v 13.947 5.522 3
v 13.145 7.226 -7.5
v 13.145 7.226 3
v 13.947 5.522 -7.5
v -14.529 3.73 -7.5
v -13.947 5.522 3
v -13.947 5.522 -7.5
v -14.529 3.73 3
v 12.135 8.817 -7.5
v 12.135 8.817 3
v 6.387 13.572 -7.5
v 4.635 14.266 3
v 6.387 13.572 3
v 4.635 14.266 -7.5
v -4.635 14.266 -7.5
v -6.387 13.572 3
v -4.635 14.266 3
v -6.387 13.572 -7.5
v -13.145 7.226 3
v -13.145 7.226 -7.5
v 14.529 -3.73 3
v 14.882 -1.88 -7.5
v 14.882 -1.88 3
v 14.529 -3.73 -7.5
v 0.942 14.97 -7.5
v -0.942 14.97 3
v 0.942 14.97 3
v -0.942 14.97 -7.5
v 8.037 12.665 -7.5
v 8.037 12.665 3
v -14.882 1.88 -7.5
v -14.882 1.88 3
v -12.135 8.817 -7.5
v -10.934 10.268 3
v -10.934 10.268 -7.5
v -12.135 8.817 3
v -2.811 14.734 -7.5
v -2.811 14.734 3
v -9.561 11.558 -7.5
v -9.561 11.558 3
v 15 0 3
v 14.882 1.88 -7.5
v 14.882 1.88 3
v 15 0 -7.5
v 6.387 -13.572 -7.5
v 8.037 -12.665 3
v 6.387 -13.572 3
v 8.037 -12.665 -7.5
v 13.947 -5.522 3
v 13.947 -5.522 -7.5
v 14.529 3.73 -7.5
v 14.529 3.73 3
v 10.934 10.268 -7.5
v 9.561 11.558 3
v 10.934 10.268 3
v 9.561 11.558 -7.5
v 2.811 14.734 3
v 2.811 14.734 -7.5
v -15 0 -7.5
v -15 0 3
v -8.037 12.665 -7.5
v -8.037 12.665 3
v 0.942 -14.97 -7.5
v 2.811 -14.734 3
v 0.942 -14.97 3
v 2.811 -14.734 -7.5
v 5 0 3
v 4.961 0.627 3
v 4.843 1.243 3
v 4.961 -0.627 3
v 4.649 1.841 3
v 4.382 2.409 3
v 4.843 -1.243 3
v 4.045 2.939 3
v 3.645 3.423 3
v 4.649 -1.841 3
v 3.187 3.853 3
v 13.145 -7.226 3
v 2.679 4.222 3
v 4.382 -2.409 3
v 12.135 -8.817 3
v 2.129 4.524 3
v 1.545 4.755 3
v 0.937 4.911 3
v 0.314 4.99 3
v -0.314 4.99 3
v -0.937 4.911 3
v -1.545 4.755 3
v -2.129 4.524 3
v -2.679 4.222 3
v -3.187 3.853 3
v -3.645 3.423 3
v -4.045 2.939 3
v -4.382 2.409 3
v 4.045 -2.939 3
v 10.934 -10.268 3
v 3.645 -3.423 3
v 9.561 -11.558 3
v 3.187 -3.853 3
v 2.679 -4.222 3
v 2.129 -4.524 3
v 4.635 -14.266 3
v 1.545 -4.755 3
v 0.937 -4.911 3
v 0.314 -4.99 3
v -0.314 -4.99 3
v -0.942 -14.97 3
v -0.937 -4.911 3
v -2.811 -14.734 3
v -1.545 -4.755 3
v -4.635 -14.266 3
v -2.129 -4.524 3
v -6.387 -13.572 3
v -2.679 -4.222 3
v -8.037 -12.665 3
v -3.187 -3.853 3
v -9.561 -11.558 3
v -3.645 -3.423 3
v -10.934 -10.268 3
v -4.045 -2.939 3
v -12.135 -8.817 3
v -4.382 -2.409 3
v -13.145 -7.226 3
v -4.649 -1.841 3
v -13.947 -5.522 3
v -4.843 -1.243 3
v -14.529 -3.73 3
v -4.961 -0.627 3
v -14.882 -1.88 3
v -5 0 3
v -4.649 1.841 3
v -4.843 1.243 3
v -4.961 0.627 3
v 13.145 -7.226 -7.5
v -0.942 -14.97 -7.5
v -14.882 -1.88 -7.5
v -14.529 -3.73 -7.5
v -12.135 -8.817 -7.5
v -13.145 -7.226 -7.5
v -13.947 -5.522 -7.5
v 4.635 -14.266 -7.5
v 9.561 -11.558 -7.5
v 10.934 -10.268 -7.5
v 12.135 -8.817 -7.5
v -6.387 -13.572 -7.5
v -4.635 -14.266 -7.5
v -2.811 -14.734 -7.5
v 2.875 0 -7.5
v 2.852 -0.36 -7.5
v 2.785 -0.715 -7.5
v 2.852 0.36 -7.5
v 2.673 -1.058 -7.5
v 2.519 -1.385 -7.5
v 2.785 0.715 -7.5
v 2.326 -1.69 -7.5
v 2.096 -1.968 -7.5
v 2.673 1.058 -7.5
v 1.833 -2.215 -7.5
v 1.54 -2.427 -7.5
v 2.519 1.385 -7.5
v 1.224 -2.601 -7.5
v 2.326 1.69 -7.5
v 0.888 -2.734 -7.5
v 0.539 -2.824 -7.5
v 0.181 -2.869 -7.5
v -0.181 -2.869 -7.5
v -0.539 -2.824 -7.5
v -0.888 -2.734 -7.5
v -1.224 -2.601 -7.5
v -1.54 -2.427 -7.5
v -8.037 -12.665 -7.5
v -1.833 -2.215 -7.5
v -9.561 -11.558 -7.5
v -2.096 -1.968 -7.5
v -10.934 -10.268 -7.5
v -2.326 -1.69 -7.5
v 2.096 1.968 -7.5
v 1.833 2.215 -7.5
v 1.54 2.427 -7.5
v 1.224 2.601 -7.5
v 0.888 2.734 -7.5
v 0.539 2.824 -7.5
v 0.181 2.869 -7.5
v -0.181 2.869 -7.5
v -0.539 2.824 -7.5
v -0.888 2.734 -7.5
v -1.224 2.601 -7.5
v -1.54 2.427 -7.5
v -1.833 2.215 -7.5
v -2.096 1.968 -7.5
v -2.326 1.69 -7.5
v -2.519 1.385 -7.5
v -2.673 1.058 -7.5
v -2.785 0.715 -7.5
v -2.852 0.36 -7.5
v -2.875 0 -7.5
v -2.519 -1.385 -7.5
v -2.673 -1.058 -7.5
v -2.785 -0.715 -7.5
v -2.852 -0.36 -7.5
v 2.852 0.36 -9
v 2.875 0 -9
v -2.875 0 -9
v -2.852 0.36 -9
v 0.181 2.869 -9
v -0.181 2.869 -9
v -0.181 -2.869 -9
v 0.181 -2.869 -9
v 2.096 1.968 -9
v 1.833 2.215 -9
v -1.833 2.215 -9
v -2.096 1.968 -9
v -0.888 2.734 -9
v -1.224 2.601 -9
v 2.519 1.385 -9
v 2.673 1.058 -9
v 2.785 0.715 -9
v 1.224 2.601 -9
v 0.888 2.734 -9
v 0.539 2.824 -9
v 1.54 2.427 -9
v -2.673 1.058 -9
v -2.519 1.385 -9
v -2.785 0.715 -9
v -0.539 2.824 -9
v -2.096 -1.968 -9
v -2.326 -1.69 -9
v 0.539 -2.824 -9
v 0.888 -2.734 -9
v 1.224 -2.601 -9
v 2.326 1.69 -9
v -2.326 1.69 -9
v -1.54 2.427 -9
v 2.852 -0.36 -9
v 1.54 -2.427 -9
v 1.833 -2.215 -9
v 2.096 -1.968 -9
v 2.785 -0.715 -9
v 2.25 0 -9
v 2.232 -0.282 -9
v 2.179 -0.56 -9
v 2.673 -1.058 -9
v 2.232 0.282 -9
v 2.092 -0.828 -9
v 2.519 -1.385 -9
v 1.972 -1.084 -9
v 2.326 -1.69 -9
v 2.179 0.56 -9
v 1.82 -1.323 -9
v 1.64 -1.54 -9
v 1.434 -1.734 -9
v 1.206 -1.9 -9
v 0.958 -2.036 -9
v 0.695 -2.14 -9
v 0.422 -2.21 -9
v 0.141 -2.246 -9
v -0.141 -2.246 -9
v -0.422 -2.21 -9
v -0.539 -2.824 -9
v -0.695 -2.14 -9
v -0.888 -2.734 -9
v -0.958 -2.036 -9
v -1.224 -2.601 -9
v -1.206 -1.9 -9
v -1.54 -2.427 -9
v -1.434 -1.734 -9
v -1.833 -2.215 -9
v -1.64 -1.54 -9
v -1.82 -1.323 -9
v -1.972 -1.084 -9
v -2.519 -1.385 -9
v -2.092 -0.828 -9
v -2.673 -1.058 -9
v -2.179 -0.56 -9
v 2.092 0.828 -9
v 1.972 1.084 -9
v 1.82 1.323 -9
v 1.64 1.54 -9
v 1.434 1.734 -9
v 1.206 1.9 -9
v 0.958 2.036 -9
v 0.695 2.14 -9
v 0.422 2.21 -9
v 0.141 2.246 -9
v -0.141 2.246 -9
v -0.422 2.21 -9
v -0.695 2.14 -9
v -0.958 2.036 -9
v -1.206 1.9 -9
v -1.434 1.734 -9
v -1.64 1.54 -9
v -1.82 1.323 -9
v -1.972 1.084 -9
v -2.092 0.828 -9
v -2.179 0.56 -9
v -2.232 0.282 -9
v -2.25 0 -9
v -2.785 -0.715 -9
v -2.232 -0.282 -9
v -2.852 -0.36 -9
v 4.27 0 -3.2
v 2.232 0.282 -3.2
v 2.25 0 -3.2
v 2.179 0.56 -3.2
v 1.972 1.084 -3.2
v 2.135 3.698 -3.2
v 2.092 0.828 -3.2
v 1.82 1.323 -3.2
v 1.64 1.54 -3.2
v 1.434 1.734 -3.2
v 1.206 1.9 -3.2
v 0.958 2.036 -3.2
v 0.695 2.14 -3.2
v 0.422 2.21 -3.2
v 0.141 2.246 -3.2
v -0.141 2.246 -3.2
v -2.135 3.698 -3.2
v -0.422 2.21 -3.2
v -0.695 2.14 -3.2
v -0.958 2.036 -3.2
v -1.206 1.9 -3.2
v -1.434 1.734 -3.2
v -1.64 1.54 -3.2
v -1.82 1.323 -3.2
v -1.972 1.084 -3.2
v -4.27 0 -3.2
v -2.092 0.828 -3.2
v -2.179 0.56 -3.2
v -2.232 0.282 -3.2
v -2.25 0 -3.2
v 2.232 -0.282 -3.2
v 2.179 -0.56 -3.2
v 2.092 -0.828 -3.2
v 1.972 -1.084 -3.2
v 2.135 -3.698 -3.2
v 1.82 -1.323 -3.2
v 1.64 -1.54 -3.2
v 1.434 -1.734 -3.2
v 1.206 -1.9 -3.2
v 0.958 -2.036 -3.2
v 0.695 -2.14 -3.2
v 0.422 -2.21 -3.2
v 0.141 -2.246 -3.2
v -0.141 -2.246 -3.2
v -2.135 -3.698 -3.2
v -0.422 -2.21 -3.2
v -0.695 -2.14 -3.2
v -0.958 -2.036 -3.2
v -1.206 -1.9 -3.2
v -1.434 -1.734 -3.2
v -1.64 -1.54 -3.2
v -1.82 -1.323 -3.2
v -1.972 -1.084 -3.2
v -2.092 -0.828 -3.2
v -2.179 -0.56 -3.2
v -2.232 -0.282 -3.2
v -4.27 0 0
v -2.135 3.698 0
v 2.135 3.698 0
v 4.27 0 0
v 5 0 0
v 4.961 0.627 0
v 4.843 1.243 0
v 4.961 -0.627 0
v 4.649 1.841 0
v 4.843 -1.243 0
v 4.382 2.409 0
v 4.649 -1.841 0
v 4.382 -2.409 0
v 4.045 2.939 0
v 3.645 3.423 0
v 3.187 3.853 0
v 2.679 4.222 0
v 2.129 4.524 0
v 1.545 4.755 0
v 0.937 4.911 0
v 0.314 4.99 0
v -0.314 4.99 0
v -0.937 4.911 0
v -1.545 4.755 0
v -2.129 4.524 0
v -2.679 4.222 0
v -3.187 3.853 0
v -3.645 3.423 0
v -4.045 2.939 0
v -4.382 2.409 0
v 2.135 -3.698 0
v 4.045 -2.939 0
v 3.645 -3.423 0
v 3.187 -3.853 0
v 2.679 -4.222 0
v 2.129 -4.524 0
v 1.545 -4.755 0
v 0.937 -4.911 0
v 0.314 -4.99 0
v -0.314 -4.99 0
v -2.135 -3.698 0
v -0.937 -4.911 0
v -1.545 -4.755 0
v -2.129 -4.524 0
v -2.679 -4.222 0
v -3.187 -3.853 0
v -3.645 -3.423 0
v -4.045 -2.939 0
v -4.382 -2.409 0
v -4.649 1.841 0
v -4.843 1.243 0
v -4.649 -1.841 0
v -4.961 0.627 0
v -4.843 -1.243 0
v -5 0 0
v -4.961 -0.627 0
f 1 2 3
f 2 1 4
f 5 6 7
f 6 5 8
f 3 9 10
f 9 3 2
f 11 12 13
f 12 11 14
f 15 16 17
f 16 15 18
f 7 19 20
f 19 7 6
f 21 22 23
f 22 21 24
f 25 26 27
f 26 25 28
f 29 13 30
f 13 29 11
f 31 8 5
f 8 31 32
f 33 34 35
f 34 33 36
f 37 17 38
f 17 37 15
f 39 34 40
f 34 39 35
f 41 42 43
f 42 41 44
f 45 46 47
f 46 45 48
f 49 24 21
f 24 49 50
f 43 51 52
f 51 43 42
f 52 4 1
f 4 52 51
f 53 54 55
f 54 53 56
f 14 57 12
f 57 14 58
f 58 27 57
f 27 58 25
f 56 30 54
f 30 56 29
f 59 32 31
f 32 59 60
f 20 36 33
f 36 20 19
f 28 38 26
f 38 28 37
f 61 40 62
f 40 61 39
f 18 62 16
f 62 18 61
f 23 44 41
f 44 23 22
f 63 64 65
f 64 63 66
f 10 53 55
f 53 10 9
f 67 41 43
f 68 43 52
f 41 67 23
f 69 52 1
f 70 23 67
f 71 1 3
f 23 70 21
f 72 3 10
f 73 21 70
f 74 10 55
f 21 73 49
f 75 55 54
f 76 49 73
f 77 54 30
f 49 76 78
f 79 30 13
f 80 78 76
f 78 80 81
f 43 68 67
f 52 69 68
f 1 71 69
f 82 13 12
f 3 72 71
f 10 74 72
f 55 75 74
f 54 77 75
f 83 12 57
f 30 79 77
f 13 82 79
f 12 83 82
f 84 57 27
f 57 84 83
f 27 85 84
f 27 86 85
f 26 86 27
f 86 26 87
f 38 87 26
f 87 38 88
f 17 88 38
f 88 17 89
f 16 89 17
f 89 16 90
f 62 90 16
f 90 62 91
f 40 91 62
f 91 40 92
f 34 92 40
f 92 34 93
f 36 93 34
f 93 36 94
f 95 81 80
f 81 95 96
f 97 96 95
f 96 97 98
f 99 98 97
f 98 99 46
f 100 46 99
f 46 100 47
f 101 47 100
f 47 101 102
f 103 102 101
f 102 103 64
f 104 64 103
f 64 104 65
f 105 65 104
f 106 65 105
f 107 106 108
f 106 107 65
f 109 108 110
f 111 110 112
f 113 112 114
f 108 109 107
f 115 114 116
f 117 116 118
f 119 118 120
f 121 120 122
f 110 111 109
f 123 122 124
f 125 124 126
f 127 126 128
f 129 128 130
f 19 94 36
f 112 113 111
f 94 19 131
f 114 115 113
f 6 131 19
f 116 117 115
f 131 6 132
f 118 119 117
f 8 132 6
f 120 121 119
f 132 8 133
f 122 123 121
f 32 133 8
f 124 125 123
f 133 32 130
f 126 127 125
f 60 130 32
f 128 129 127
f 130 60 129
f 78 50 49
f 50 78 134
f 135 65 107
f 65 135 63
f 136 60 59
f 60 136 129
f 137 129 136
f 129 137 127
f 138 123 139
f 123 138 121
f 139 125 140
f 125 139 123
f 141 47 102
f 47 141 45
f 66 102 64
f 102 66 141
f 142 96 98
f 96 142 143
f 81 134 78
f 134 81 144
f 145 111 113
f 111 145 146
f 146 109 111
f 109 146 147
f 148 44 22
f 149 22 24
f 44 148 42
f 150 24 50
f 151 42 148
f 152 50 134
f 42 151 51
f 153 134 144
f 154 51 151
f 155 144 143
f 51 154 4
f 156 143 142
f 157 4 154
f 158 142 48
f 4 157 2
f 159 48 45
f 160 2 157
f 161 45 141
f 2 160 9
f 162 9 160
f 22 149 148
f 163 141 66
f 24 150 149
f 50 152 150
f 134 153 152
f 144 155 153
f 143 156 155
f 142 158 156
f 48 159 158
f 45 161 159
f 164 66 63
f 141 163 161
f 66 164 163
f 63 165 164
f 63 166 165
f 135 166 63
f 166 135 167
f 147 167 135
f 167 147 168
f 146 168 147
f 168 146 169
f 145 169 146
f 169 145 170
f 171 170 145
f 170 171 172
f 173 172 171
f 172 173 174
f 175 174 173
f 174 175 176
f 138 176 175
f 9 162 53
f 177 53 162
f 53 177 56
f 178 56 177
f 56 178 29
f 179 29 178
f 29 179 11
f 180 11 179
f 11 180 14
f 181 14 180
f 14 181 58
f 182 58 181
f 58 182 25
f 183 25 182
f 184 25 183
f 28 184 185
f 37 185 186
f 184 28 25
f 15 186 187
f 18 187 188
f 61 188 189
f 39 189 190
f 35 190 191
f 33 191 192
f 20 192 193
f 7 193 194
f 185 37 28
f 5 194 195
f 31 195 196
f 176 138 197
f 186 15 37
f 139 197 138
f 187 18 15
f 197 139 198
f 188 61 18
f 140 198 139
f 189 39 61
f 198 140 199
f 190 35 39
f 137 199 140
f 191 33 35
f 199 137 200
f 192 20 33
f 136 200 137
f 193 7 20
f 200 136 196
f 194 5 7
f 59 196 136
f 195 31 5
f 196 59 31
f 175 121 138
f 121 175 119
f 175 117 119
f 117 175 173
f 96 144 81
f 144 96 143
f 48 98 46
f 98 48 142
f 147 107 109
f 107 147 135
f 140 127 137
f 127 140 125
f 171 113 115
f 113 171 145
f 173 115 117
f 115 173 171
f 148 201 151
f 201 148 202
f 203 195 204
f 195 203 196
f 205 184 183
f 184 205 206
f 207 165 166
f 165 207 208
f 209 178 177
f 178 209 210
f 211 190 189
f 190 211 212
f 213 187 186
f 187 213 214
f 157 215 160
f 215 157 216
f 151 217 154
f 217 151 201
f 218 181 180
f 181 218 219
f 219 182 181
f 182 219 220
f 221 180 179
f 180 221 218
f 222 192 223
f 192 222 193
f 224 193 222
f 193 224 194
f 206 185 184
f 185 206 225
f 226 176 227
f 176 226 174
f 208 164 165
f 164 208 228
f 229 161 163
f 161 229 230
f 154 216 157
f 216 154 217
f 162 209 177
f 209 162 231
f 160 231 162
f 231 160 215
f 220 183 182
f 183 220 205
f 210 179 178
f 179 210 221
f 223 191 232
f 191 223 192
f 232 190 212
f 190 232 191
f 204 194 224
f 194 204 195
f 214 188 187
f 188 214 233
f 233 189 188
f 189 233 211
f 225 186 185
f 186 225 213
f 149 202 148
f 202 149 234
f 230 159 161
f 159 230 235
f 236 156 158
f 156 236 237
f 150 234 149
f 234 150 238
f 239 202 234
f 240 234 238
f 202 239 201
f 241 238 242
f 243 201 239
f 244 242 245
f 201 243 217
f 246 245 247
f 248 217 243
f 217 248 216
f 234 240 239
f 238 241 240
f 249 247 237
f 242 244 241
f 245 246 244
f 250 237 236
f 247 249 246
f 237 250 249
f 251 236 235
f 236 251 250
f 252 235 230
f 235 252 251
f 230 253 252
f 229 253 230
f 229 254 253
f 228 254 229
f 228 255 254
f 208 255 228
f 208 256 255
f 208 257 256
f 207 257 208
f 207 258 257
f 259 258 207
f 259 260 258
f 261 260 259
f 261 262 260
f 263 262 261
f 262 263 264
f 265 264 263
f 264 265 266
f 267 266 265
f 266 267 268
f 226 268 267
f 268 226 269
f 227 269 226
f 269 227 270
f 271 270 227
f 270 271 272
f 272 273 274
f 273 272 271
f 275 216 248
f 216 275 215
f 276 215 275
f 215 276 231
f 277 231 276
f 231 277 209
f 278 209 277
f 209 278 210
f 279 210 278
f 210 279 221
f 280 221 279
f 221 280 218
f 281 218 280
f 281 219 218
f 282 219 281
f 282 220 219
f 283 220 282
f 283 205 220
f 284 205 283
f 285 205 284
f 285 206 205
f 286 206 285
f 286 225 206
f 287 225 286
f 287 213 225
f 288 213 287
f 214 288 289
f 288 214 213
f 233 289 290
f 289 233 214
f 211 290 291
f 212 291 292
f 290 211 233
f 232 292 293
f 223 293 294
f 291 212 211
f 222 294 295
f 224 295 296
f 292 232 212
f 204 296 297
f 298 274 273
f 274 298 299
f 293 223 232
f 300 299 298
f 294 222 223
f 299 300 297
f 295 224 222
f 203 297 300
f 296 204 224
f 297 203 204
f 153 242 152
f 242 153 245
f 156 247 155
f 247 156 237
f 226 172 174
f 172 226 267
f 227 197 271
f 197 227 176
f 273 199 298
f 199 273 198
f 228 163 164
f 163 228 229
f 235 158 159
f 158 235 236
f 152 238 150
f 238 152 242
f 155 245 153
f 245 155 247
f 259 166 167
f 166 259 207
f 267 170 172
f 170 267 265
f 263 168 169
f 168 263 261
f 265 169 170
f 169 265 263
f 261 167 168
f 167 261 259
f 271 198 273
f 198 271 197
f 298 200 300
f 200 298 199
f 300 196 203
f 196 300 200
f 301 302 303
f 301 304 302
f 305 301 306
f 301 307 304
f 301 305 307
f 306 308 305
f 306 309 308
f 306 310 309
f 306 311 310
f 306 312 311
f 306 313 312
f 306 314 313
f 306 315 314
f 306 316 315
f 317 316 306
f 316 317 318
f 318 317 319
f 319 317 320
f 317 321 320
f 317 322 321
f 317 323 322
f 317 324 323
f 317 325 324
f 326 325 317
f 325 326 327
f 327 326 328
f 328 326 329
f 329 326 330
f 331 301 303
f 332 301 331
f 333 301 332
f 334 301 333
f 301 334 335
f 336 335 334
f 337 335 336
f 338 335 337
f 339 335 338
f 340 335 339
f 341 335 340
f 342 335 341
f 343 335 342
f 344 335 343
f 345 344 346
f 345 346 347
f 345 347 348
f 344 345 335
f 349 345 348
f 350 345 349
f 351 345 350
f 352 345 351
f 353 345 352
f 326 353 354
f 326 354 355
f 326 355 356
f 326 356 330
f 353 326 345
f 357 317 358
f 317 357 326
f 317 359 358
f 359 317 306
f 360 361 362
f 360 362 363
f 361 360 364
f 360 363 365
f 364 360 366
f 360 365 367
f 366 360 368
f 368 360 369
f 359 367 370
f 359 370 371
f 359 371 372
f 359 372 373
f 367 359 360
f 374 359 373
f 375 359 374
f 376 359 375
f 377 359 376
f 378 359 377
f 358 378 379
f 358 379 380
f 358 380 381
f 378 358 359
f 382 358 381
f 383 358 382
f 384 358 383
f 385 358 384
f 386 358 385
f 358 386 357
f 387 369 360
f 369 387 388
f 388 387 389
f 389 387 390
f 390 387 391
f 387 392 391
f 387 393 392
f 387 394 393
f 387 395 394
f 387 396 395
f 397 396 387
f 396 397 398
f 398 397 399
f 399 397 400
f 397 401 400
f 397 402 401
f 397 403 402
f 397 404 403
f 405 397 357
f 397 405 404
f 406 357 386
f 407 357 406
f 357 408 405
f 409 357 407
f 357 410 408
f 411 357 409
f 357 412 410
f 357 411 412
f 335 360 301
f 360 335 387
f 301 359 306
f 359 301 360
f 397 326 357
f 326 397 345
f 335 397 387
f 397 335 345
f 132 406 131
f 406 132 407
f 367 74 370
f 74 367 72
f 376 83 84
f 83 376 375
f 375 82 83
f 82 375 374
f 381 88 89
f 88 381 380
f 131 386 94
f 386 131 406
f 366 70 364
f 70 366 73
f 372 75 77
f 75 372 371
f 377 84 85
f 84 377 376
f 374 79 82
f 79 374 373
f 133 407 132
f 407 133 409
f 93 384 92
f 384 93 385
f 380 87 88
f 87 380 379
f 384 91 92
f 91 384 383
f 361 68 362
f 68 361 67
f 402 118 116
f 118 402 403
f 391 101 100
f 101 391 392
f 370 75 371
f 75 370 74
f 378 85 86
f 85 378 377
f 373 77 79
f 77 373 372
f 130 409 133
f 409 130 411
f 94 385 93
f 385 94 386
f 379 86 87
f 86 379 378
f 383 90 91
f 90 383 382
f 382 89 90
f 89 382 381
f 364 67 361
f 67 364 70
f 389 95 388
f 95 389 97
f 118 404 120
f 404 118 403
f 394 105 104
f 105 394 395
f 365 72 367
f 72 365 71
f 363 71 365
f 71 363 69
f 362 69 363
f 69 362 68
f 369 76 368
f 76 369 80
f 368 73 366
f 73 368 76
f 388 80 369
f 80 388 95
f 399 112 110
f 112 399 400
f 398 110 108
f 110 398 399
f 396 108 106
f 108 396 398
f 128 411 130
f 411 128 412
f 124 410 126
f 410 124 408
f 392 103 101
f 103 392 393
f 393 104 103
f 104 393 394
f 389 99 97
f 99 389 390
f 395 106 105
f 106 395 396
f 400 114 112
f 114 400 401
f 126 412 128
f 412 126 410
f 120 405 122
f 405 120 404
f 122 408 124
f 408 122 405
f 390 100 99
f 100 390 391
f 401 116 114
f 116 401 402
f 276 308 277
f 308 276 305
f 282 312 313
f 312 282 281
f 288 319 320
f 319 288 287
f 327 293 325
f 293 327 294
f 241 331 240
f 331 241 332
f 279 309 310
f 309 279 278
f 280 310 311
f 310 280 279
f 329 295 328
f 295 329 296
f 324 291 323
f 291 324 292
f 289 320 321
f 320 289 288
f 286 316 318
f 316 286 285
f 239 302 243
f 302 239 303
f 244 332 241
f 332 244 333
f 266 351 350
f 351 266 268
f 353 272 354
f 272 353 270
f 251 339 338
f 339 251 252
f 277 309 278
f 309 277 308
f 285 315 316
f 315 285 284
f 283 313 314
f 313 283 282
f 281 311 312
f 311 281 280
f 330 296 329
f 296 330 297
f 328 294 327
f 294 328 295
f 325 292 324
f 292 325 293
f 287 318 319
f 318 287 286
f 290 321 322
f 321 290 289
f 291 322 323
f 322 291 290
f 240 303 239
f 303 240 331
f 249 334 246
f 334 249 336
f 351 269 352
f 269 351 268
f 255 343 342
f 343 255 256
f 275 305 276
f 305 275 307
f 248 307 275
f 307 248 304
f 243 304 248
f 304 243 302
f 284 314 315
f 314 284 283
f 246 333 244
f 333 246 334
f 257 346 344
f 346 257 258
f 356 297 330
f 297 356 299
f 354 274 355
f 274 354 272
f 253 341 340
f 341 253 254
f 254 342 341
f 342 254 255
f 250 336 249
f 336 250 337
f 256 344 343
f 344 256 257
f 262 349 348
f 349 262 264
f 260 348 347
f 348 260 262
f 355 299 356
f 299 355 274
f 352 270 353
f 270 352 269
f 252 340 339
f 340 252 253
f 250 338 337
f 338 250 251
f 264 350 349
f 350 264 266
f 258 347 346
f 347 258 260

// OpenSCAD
$fn = 50;


difference() {
	union() {
		translate(v = [0, 0, -7.5000000000]) {
			cylinder(h = 10.5000000000, r = 15.0000000000);
		}
		#translate(v = [0, 0, -9.0000000000]) {
			cylinder(h = 9, r = 2.8750000000);
		}
	}
	union() {
		translate(v = [0, 0, 0]) {
			rotate(a = [0, 0, 0]) {
				difference() {
					union() {
						translate(v = [0, 0, -3.2000000000]) {
							linear_extrude(height = 3.2000000000) {
								polygon(points = [[4.2698000000, 0.0000000000], [2.1349000000, 3.6977552691], [-2.1349000000, 3.6977552691], [-4.2698000000, 0.0000000000], [-2.1349000000, -3.6977552691], [2.1349000000, -3.6977552691]]);
							}
						}
					}
					union();
				}
			}
		}
		#cylinder(h = 3, r = 5.0000000000);
		#translate(v = [0, 0, -100.0000000000]) {
			cylinder(h = 200, r = 2.2500000000);
		}
	}
}
